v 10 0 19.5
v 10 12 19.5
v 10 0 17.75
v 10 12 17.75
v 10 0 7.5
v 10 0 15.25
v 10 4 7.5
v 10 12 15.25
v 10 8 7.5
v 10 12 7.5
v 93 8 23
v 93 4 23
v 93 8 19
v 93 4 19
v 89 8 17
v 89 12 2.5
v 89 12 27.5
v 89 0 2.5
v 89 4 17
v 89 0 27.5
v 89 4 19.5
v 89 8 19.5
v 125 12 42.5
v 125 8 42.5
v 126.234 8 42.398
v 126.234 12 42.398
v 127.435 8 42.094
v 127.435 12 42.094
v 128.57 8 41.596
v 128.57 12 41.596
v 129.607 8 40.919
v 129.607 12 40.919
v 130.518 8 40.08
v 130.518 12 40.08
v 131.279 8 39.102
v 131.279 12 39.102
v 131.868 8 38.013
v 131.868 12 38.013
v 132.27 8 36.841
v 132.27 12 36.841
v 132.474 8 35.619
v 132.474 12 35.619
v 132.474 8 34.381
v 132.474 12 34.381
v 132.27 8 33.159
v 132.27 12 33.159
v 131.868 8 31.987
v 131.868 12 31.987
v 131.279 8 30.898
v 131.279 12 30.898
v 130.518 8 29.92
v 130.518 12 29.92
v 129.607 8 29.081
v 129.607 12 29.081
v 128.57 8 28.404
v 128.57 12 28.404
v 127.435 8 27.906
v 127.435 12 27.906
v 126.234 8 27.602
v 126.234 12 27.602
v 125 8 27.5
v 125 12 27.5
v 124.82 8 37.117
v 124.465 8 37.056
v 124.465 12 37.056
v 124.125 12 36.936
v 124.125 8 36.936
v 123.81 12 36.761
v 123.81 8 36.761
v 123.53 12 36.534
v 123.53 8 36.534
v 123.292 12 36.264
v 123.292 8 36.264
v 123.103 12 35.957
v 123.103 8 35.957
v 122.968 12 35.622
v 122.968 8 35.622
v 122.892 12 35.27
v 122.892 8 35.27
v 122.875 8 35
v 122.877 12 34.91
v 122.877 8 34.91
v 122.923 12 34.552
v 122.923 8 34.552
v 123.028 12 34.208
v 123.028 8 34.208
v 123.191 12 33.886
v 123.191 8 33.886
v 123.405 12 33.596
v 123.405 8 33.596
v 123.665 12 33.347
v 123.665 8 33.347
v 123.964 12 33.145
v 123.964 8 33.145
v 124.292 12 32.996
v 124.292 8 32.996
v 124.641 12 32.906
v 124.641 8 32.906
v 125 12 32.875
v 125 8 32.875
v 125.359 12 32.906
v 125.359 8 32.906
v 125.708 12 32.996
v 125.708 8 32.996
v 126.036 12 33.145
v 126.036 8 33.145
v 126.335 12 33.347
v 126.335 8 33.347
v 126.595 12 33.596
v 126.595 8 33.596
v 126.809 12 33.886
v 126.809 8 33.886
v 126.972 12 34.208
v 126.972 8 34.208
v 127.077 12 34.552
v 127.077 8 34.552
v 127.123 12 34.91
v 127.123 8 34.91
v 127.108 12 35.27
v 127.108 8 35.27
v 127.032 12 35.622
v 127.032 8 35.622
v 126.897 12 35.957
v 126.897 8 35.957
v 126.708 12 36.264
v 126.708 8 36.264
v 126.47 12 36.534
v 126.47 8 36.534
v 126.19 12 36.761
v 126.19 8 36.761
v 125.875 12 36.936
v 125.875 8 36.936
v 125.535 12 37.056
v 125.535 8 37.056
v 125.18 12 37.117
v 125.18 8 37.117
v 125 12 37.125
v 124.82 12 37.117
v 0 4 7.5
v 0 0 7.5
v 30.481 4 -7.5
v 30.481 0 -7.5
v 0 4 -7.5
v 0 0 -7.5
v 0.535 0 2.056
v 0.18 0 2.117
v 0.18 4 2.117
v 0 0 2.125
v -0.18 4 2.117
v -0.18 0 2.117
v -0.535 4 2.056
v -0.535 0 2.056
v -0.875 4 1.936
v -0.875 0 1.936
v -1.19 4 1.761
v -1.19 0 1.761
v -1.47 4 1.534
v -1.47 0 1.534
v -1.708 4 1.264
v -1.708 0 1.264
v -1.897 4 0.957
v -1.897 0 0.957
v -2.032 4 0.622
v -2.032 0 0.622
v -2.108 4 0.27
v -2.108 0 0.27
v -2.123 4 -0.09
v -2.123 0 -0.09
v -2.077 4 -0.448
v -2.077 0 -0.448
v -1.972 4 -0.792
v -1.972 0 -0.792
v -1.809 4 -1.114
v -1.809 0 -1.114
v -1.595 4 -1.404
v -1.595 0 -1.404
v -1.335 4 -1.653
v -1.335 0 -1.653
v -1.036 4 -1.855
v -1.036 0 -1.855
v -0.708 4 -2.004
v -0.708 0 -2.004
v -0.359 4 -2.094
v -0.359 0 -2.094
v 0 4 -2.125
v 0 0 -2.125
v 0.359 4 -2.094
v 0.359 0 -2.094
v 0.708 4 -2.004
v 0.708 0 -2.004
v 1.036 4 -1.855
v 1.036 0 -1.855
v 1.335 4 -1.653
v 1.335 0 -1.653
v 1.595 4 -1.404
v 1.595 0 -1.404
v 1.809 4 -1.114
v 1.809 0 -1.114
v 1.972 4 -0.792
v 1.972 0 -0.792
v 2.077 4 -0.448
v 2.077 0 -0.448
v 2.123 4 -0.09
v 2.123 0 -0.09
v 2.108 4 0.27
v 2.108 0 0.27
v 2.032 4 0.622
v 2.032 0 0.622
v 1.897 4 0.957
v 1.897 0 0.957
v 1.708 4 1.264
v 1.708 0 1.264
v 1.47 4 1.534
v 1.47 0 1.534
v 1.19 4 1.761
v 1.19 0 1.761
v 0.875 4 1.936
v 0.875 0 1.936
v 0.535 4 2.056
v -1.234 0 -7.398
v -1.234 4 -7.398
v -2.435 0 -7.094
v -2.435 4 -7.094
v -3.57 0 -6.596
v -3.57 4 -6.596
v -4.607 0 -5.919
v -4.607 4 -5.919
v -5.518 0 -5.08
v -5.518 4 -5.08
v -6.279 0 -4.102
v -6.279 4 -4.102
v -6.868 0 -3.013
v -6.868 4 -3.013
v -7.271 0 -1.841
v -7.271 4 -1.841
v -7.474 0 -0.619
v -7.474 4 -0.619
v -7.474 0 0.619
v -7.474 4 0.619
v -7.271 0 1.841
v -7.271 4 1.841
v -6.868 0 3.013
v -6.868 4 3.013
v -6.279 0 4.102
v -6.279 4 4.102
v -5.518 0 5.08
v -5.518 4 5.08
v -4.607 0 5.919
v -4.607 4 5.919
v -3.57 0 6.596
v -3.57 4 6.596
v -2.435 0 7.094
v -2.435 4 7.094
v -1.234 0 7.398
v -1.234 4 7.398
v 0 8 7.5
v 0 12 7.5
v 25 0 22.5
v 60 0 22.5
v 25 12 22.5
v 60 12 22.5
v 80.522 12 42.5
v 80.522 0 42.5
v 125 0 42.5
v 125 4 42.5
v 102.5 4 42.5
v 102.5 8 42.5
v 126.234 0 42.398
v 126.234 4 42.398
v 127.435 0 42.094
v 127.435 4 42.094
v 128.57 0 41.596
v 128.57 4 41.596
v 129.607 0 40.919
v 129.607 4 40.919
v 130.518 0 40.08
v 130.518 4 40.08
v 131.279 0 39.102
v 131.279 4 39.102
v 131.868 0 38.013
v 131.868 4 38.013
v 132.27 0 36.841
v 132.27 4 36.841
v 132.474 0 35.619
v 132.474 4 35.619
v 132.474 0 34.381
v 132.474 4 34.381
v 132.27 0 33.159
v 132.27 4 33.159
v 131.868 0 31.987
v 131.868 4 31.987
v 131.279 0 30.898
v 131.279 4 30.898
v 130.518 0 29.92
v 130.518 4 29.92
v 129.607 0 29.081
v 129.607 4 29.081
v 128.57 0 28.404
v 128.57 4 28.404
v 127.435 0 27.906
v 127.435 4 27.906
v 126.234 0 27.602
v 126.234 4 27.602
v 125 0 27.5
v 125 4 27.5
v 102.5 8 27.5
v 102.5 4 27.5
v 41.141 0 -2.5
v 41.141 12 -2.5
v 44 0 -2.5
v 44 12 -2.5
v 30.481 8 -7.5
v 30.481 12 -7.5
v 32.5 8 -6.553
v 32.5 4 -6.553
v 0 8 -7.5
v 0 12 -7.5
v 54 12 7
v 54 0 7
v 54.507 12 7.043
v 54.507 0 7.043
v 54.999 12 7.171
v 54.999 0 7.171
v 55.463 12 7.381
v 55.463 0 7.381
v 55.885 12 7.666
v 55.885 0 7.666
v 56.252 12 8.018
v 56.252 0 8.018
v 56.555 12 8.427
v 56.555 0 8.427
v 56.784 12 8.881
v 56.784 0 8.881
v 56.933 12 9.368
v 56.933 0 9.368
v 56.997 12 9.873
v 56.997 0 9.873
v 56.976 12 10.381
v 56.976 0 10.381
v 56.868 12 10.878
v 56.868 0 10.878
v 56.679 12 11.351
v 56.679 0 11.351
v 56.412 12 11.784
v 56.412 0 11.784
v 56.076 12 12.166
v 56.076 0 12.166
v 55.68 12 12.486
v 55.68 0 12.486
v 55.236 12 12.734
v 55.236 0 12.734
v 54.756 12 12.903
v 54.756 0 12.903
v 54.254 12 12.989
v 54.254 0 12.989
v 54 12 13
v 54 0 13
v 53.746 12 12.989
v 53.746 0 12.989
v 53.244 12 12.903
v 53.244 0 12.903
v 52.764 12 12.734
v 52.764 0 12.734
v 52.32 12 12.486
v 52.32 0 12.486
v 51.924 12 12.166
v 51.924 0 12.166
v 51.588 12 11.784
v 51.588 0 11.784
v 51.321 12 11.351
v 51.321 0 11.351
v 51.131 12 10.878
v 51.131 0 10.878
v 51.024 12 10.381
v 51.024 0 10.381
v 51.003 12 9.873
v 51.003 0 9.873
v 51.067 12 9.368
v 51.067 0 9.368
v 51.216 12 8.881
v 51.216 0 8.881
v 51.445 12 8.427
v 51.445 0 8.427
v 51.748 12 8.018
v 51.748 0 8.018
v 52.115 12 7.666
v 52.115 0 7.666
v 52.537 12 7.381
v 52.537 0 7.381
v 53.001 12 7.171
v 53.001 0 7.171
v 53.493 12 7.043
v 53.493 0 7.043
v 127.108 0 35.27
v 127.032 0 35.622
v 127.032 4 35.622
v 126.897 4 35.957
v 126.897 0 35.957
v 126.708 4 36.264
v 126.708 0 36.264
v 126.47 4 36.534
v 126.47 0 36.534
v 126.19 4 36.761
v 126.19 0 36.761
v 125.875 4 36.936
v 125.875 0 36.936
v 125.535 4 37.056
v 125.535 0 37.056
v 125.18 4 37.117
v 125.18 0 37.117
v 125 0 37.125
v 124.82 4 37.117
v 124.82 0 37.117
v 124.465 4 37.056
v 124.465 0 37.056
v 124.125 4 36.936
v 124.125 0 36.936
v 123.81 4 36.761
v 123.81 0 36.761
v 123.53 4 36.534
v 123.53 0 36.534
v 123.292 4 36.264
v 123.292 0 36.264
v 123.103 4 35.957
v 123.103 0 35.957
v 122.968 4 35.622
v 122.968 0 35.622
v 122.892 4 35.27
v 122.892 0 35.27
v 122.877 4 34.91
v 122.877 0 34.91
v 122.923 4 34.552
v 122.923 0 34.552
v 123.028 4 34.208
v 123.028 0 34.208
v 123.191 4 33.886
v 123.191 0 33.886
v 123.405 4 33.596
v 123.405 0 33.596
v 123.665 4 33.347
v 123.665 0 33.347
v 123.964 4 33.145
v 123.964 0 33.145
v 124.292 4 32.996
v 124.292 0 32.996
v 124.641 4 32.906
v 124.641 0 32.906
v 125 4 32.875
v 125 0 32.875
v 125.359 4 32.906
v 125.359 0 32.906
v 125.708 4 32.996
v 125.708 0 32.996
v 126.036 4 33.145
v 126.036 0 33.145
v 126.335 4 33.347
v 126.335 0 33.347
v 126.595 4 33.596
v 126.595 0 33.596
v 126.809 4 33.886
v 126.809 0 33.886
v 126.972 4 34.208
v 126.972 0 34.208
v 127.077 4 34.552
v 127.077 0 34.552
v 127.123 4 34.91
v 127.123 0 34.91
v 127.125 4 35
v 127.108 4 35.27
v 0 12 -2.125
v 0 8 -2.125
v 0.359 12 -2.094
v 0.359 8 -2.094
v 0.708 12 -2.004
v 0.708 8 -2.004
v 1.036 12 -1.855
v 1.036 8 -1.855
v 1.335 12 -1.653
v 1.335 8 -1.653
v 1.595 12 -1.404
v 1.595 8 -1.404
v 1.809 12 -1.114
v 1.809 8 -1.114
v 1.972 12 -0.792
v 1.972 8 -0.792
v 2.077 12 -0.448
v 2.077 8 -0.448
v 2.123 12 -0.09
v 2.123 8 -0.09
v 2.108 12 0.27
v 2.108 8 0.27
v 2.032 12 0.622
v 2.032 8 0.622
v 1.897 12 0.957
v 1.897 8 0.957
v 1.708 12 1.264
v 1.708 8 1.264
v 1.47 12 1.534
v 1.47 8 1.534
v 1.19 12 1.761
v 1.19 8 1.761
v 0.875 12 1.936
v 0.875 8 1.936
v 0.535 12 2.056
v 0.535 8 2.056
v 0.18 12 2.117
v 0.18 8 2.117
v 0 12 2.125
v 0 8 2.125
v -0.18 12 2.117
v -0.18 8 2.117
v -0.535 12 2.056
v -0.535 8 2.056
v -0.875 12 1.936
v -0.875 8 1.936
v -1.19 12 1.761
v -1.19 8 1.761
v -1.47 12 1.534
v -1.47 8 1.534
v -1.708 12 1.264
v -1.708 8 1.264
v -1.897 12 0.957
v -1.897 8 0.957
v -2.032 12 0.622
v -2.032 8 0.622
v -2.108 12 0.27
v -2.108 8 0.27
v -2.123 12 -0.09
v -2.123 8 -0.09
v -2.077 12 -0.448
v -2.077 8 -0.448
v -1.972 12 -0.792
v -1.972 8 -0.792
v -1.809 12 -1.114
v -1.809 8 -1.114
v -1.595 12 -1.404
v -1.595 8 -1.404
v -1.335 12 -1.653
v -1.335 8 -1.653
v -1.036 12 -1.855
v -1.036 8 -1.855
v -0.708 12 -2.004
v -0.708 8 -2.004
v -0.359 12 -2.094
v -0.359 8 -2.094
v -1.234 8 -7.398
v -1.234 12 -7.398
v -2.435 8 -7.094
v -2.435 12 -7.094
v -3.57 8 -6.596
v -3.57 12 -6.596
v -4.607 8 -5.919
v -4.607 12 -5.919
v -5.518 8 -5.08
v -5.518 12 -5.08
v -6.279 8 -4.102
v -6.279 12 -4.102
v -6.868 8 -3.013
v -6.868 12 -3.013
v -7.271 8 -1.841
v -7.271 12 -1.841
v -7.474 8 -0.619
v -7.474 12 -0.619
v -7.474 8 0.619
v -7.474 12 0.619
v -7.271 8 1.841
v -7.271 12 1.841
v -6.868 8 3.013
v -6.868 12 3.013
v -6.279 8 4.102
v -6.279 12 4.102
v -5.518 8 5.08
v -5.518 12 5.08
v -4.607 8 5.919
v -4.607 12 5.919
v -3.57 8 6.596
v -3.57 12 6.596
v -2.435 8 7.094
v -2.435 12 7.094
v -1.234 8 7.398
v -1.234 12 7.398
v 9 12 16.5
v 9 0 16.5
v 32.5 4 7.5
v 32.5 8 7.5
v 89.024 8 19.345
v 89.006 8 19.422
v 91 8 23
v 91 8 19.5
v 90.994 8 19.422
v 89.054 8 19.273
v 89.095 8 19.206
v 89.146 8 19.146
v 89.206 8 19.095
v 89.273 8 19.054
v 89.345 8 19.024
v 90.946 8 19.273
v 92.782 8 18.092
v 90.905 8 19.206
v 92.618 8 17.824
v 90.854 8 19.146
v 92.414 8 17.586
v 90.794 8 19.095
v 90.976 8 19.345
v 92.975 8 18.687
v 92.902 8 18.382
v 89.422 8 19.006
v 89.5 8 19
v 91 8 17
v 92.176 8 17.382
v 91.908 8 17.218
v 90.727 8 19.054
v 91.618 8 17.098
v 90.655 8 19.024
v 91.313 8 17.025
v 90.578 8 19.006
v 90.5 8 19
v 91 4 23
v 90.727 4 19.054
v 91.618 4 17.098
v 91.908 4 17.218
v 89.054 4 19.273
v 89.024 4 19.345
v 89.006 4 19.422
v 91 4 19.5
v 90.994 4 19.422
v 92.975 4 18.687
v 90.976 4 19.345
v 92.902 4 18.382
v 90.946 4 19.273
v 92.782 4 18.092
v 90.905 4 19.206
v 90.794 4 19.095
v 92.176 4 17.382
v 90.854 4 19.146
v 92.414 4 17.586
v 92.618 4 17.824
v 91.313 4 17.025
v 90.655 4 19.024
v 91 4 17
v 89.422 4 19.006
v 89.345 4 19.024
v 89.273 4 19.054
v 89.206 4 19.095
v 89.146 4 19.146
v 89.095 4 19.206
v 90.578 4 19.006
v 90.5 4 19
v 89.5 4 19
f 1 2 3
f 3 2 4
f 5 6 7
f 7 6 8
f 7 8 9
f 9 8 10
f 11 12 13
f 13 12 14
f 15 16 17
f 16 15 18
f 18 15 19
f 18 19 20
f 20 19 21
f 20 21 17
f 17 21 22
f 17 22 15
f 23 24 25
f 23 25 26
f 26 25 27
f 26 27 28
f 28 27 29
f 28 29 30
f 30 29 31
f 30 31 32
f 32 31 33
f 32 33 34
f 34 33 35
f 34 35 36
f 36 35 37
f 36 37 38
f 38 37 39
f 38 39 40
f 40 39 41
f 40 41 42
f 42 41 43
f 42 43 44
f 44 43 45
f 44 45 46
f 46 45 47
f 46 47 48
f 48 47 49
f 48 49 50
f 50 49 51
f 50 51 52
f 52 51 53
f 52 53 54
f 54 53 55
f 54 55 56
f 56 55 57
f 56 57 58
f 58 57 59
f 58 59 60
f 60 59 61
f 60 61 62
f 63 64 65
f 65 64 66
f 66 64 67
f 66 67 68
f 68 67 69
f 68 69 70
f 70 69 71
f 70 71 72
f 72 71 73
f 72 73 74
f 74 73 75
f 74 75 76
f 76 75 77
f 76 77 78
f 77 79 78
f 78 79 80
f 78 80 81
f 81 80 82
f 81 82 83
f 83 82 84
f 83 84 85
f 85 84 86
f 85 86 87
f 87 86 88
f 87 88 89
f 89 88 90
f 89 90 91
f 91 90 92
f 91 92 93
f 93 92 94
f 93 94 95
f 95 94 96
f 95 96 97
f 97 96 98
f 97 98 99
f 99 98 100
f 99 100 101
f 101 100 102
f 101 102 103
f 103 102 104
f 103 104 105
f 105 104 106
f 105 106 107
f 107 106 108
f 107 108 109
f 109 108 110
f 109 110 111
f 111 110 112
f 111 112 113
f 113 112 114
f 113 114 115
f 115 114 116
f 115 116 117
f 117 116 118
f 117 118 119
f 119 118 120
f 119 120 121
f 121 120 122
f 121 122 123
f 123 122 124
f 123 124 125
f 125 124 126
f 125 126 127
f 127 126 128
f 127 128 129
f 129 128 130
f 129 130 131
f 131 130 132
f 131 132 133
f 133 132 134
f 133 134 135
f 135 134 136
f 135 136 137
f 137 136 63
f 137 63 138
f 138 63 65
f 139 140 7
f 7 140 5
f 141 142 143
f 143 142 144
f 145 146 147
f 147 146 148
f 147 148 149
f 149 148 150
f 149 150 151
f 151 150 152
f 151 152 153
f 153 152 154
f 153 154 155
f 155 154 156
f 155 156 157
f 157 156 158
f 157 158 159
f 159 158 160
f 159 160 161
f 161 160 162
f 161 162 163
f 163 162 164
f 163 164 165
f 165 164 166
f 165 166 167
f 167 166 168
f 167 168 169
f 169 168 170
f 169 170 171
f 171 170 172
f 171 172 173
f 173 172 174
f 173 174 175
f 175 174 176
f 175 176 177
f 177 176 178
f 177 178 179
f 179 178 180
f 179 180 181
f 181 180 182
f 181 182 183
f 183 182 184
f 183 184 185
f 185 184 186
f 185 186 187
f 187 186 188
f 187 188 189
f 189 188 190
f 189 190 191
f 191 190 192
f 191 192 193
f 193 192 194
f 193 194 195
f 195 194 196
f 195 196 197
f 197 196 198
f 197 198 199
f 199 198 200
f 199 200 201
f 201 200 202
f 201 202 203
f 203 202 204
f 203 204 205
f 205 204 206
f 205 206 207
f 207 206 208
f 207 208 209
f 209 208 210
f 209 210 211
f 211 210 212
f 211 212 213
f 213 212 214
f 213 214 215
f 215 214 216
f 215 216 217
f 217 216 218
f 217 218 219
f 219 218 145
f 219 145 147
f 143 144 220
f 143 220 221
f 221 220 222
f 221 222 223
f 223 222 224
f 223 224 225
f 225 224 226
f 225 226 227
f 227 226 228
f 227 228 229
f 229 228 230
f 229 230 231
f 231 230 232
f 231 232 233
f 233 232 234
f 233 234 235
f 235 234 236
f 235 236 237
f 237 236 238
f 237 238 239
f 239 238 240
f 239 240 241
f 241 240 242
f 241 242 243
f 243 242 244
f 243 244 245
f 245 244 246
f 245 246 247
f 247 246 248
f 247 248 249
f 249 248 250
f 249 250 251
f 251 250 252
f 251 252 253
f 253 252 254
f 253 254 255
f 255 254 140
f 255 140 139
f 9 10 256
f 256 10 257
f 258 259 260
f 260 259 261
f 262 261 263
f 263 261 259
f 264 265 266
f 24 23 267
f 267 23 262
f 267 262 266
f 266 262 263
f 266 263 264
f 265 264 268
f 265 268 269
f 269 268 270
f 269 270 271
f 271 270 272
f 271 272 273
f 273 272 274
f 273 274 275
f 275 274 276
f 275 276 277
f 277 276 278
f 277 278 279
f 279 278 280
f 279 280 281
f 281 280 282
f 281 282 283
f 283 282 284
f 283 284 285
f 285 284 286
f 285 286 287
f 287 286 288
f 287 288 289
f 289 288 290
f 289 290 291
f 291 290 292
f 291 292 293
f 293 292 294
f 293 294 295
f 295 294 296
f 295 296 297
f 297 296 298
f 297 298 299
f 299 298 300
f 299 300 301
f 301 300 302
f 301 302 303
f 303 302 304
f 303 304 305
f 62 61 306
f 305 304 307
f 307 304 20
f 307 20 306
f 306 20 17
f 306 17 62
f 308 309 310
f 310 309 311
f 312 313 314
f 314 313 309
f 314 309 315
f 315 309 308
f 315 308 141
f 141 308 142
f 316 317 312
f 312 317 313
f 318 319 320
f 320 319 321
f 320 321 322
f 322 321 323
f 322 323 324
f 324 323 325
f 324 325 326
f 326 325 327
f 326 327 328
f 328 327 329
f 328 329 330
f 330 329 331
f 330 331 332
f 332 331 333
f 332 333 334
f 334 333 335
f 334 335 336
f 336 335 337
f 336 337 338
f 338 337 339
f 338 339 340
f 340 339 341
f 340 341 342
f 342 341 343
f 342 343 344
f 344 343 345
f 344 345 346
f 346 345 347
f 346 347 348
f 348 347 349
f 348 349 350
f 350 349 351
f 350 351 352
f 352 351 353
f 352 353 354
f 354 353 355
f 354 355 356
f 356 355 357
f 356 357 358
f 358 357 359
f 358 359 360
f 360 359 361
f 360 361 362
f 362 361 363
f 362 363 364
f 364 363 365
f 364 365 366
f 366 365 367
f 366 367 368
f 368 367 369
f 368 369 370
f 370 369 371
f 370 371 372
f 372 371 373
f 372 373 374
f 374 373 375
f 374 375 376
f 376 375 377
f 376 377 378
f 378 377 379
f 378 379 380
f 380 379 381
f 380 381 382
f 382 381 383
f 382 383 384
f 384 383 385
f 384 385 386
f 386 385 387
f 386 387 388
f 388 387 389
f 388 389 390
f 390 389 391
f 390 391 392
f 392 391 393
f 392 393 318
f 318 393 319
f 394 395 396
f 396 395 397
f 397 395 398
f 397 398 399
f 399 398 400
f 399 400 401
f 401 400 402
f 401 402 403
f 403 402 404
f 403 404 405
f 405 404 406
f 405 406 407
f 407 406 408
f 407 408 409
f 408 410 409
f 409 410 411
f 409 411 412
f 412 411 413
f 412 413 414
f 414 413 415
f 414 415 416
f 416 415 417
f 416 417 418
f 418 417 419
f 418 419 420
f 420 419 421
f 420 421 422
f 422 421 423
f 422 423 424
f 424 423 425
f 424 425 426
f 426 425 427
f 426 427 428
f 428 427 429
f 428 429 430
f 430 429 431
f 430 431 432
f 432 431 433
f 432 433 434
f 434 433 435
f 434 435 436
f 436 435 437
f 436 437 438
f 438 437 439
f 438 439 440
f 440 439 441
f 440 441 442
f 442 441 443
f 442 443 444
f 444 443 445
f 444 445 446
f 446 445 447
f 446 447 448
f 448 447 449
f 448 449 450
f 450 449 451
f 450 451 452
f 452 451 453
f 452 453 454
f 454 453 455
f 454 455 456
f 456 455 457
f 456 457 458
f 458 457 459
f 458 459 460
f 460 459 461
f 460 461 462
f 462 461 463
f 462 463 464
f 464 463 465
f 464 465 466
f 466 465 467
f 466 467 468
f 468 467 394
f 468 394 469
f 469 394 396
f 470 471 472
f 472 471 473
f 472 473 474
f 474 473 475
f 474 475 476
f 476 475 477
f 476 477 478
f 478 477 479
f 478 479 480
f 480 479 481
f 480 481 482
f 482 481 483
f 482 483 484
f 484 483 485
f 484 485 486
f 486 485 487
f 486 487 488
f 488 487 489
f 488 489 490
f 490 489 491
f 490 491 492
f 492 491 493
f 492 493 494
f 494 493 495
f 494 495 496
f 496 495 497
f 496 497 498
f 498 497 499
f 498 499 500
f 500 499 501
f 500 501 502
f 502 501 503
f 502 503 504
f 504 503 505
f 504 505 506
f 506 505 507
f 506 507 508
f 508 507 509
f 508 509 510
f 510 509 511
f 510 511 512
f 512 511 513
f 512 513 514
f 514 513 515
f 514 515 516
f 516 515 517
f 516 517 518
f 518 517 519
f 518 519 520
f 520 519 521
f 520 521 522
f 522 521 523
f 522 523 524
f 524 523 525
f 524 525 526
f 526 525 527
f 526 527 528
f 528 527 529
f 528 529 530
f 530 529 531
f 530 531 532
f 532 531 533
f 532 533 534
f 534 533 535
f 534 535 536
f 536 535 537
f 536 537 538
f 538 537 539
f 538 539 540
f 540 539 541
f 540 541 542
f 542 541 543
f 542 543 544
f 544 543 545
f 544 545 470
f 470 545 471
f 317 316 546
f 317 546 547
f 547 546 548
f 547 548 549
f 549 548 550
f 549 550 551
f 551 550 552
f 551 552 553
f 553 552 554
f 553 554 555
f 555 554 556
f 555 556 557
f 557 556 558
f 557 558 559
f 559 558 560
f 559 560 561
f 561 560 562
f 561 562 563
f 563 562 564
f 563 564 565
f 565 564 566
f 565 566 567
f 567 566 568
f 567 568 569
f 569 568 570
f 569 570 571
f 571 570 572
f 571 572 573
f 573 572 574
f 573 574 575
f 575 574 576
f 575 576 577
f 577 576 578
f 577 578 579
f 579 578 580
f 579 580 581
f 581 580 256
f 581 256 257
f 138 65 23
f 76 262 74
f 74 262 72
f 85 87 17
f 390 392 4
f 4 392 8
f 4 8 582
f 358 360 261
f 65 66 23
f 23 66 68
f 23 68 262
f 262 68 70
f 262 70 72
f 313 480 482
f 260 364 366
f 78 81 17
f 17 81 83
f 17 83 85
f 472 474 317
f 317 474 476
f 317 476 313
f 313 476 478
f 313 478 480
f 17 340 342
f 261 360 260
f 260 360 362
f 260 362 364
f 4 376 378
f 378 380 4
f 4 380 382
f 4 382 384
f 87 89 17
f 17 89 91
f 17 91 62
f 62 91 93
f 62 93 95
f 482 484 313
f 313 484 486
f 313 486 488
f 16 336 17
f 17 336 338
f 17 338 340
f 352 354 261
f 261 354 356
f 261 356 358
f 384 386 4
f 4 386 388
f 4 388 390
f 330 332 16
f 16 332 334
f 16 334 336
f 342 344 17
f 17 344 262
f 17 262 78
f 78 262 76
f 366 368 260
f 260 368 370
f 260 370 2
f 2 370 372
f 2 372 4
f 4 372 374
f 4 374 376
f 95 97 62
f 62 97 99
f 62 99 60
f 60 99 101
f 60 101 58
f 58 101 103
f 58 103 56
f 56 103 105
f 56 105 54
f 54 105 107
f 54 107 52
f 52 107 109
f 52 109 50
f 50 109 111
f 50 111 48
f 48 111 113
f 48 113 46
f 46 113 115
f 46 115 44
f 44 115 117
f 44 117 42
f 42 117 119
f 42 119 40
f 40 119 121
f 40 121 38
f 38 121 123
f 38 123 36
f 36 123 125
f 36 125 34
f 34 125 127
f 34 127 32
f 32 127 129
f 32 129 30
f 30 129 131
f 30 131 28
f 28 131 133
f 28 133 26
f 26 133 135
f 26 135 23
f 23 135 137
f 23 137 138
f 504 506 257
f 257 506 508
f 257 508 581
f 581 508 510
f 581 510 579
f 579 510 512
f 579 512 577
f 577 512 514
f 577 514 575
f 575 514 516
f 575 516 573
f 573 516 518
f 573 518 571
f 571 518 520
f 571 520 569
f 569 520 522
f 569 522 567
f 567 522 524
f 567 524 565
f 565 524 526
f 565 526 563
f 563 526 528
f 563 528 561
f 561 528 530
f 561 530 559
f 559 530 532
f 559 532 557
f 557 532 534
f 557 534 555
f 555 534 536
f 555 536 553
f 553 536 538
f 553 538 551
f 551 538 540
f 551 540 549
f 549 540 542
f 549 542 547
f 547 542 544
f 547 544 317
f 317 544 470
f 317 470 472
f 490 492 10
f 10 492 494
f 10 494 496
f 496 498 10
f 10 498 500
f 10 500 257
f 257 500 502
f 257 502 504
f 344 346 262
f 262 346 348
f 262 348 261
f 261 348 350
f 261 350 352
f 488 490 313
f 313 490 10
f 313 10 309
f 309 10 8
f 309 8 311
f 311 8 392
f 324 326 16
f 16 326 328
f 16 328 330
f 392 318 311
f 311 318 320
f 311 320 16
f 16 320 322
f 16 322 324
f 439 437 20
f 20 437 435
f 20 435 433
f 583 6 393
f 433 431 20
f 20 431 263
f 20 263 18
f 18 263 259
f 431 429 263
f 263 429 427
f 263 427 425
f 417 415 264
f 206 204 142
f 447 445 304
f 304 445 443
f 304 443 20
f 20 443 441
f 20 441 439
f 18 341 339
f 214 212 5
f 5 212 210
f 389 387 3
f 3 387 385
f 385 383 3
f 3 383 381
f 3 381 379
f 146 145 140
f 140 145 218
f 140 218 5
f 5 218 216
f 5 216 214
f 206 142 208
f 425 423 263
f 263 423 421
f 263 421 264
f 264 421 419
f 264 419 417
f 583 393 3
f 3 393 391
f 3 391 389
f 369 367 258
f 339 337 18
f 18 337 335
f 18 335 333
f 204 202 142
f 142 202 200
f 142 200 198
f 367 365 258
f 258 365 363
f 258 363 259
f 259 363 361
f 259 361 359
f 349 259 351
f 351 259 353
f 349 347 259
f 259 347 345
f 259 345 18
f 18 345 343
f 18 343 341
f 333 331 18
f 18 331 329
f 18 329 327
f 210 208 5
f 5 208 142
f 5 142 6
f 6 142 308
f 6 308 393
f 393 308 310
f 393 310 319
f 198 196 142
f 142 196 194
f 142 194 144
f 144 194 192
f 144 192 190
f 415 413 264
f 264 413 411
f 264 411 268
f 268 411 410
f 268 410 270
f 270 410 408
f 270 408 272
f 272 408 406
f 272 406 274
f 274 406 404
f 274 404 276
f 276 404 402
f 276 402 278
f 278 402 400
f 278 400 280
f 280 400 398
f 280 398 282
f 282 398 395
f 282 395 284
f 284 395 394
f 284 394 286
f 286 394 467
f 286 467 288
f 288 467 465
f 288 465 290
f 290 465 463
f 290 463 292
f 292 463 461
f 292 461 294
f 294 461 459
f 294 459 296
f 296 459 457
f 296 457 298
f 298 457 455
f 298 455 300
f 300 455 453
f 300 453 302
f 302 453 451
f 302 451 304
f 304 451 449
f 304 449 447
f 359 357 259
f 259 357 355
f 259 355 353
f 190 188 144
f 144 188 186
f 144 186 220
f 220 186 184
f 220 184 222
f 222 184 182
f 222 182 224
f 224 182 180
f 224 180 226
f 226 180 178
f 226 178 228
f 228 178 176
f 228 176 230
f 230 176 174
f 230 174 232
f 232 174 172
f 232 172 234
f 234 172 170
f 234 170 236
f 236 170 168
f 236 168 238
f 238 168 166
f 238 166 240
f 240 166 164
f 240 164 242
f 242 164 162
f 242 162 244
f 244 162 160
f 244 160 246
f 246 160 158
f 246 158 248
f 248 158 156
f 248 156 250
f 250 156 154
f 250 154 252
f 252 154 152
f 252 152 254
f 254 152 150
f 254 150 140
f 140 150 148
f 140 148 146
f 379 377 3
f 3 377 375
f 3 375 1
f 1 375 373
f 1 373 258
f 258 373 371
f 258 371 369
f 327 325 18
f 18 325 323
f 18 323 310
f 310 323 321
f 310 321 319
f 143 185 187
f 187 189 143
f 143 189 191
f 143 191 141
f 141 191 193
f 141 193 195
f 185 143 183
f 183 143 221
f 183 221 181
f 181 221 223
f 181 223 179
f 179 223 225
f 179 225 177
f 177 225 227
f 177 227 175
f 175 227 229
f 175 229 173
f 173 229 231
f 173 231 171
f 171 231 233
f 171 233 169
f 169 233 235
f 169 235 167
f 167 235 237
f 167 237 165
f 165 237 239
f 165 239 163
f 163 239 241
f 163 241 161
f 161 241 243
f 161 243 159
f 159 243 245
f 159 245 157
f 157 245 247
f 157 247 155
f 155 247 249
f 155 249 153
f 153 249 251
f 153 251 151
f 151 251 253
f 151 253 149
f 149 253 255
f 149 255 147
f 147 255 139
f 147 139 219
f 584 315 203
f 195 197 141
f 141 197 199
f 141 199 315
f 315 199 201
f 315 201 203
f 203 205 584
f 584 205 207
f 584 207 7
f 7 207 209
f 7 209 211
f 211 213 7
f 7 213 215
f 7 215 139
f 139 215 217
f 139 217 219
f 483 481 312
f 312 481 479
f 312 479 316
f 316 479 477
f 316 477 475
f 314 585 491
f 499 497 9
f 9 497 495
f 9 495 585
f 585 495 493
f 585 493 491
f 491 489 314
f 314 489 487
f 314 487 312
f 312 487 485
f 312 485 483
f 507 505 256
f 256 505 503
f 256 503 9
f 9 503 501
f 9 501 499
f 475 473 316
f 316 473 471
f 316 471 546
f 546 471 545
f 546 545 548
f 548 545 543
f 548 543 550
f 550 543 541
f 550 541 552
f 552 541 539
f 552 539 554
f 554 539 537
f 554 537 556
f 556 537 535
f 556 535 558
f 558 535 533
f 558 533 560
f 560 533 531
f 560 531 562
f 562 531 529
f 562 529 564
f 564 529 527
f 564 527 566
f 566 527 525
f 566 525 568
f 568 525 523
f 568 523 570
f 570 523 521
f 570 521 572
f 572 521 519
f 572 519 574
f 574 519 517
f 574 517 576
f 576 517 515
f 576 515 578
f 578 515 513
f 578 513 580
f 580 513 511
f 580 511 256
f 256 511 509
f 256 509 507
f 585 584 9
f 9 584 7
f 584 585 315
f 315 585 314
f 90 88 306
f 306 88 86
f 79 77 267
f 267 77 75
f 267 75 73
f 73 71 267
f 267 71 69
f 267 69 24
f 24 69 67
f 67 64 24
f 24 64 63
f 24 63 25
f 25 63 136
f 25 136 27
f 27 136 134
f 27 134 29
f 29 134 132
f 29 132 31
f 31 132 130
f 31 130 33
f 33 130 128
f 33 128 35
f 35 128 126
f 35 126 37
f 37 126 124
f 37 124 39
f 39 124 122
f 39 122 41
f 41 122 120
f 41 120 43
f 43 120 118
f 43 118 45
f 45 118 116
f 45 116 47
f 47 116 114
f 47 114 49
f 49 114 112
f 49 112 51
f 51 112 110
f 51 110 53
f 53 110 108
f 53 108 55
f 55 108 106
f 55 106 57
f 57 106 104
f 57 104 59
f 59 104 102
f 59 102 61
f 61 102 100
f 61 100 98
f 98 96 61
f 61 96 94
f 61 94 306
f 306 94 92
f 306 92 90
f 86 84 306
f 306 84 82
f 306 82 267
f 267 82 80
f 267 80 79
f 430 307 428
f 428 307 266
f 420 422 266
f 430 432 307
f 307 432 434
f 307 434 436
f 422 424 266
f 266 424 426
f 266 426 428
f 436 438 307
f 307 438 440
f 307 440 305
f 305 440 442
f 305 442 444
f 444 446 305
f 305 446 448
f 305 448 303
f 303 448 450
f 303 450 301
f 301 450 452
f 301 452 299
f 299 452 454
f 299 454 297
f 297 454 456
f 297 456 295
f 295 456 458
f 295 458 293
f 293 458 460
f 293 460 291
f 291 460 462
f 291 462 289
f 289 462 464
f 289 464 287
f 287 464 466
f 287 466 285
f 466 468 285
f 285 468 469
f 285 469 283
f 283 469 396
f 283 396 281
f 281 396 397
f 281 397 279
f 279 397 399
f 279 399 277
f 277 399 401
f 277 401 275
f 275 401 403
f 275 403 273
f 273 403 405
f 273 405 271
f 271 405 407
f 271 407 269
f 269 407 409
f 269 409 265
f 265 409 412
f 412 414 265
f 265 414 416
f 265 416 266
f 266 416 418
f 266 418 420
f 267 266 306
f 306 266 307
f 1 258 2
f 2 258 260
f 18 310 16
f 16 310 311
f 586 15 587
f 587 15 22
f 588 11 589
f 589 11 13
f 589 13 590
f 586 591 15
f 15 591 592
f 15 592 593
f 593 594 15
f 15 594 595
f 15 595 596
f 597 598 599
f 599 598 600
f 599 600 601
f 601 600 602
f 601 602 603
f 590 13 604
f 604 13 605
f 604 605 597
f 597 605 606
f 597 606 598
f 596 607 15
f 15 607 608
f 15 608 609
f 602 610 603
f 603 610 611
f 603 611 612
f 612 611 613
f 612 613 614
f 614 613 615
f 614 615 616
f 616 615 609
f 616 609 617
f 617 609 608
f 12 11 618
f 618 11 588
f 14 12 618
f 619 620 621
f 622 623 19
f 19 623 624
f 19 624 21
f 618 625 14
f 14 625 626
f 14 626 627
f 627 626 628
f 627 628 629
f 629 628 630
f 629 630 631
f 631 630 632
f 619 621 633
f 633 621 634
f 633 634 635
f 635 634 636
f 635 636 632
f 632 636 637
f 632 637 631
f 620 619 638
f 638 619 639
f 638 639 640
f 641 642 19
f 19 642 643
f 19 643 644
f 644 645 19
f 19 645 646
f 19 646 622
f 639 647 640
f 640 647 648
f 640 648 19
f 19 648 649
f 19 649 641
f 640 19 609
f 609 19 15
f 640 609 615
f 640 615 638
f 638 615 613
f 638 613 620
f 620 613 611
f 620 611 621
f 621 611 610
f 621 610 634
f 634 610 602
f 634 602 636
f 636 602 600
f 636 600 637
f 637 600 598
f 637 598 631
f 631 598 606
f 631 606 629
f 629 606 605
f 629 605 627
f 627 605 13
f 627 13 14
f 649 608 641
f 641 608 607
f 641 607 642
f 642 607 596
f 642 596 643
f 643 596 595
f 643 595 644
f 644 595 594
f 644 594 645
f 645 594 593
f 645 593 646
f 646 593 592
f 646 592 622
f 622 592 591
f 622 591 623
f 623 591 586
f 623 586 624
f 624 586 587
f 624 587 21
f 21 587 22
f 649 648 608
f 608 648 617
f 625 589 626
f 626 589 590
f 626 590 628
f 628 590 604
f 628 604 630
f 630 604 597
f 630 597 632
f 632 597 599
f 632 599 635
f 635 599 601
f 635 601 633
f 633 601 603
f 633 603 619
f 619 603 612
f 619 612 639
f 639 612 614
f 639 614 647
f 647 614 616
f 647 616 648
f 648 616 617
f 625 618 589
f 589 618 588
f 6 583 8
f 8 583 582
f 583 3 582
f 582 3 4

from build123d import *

# Parameters (mm, degrees)
SKETCH1_R           = 2.125
SKETCH1_R_2         = 3
BOSS_EXTRUDE1_DEPTH = 12
SKETCH2_W           = 40
SKETCH2_H           = 4
SLOT1_CUT_DEPTH     = 15
SKETCH3_W           = 30
SKETCH3_H           = 4
SLOT2_CUT_DEPTH     = 138.569073559
CUT_EXTRUDE3_DEPTH  = 140.665672232
SKETCH5_W           = 6
SKETCH5_H           = 4
BOSS_EXTRUDE2_DEPTH = 4
CUT_EXTRUDE4_DEPTH  = 4
SKETCH7_W           = 2.5
SKETCH7_H           = 12
BOSS_EXTRUDE3_DEPTH = 1
CUT_EXTRUDE5_DEPTH  = 140.665672232


with BuildPart() as part:
    # Sketch1 → Boss-Extrude1 (new body)
    with BuildSketch(Plane(origin=(0, 0, 0), x_dir=(1, 0, 0), z_dir=(0, 1, 0))):
        with BuildLine():
            Line((0, -7.5), (10, -7.5))
            Line((10, -7.5), (10, -22.5))
            Line((10, -22.5), (60, -22.5))
            Line((60, -22.5), (80.52220172, -42.5))
            Line((80.52220172, -42.5), (125, -42.5))
            ThreePointArc((125, -42.5), (132.5, -35), (125, -27.5))
            Line((125, -27.5), (89, -27.5))
            Line((89, -27.5), (89, 2.5))
            Line((89, 2.5), (41.141232585, 2.5))
            Line((41.141232585, 2.5), (30.480824737, 7.5))
            Line((30.480824737, 7.5), (0, 7.5))
            ThreePointArc((0, 7.5), (-7.5, 0), (0, -7.5))
        make_face()
        with Locations(Location((0, 0, 0), (0, 0, 270))):
            Circle(SKETCH1_R, mode=Mode.SUBTRACT)
        with Locations(Location((125, -35, 0), (0, 0, 270))):
            Circle(SKETCH1_R, mode=Mode.SUBTRACT)
        with Locations(Location((54, -10, 0), (0, 0, 270))):
            Circle(SKETCH1_R_2, mode=Mode.SUBTRACT)
    extrude(amount=BOSS_EXTRUDE1_DEPTH)

    # Sketch2 → Slot1 Cut (cut)
    with BuildSketch(Plane(origin=(0, 0, -7.5), x_dir=(-1, 0, 0), z_dir=(0, 0, -1))):
        with Locations((-12.5, 6)):
            Rectangle(SKETCH2_W, SKETCH2_H)
    extrude(amount=-SLOT1_CUT_DEPTH, mode=Mode.SUBTRACT)

    # Sketch3 → Slot2 Cut (cut, through all)
    with BuildSketch(Plane(origin=(0, 0, 27.5), x_dir=(-1, 0, 0), z_dir=(0, 0, -1))):
        with Locations((-117.5, 6)):
            Rectangle(SKETCH3_W, SKETCH3_H)
    extrude(amount=-SLOT2_CUT_DEPTH, mode=Mode.SUBTRACT)

    # Sketch4 → Cut-Extrude3 (cut, through all)
    with BuildSketch(Plane(origin=(0, 12, 0), x_dir=(1, 0, 0), z_dir=(0, 1, 0))):
        Polygon((10, -19.5), (10, -22.5), (25, -22.5), align=None)
        Polygon((44, 2.5), (89, 2.5), (89, -2.5), align=None)
    extrude(amount=-CUT_EXTRUDE3_DEPTH, mode=Mode.SUBTRACT)

    # Sketch5 → Boss-Extrude2 (add)
    with BuildSketch(Plane(origin=(89, 0, 0), x_dir=(0, 0, -1), z_dir=(1, 0, 0))):
        with Locations((-20, 6)):
            Rectangle(SKETCH5_W, SKETCH5_H)
    extrude(amount=BOSS_EXTRUDE2_DEPTH)

    # Sketch6 → Cut-Extrude4 (cut)
    with BuildSketch(Plane(origin=(0, 8, 0), x_dir=(1, 0, 0), z_dir=(0, 1, 0))):
        with BuildLine():
            Line((91, -23), (89, -23))
            Line((89, -23), (89, -19.5))
            ThreePointArc((89, -19.5), (89.146446609, -19.146446609), (89.5, -19))
            Line((89.5, -19), (90.5, -19))
            ThreePointArc((90.5, -19), (90.853553391, -19.146446609), (91, -19.5))
            Line((91, -19.5), (91, -23))
        make_face()
        with BuildLine():
            Line((91, -17), (93, -17))
            Line((93, -17), (93, -19))
            ThreePointArc((93, -19), (92.414213562, -17.585786438), (91, -17))
        make_face()
    extrude(amount=-CUT_EXTRUDE4_DEPTH, mode=Mode.SUBTRACT)

    # Sketch7 → Boss-Extrude3 (add)
    with BuildSketch(Plane.ZY.offset(-10)):
        with Locations((16.5, 6)):
            Rectangle(SKETCH7_W, SKETCH7_H)
    extrude(amount=BOSS_EXTRUDE3_DEPTH)

    # Sketch8 → Cut-Extrude5 (cut, through all)
    with BuildSketch(Plane(origin=(0, 12, 0), x_dir=(1, 0, 0), z_dir=(0, 1, 0))):
        Polygon((9, -16.5), (10, -15.25), (9, -15.25), align=None)
        Polygon((10, -17.75), (9, -16.5), (9, -17.75), align=None)
    extrude(amount=-CUT_EXTRUDE5_DEPTH, mode=Mode.SUBTRACT)


solid = part.part
